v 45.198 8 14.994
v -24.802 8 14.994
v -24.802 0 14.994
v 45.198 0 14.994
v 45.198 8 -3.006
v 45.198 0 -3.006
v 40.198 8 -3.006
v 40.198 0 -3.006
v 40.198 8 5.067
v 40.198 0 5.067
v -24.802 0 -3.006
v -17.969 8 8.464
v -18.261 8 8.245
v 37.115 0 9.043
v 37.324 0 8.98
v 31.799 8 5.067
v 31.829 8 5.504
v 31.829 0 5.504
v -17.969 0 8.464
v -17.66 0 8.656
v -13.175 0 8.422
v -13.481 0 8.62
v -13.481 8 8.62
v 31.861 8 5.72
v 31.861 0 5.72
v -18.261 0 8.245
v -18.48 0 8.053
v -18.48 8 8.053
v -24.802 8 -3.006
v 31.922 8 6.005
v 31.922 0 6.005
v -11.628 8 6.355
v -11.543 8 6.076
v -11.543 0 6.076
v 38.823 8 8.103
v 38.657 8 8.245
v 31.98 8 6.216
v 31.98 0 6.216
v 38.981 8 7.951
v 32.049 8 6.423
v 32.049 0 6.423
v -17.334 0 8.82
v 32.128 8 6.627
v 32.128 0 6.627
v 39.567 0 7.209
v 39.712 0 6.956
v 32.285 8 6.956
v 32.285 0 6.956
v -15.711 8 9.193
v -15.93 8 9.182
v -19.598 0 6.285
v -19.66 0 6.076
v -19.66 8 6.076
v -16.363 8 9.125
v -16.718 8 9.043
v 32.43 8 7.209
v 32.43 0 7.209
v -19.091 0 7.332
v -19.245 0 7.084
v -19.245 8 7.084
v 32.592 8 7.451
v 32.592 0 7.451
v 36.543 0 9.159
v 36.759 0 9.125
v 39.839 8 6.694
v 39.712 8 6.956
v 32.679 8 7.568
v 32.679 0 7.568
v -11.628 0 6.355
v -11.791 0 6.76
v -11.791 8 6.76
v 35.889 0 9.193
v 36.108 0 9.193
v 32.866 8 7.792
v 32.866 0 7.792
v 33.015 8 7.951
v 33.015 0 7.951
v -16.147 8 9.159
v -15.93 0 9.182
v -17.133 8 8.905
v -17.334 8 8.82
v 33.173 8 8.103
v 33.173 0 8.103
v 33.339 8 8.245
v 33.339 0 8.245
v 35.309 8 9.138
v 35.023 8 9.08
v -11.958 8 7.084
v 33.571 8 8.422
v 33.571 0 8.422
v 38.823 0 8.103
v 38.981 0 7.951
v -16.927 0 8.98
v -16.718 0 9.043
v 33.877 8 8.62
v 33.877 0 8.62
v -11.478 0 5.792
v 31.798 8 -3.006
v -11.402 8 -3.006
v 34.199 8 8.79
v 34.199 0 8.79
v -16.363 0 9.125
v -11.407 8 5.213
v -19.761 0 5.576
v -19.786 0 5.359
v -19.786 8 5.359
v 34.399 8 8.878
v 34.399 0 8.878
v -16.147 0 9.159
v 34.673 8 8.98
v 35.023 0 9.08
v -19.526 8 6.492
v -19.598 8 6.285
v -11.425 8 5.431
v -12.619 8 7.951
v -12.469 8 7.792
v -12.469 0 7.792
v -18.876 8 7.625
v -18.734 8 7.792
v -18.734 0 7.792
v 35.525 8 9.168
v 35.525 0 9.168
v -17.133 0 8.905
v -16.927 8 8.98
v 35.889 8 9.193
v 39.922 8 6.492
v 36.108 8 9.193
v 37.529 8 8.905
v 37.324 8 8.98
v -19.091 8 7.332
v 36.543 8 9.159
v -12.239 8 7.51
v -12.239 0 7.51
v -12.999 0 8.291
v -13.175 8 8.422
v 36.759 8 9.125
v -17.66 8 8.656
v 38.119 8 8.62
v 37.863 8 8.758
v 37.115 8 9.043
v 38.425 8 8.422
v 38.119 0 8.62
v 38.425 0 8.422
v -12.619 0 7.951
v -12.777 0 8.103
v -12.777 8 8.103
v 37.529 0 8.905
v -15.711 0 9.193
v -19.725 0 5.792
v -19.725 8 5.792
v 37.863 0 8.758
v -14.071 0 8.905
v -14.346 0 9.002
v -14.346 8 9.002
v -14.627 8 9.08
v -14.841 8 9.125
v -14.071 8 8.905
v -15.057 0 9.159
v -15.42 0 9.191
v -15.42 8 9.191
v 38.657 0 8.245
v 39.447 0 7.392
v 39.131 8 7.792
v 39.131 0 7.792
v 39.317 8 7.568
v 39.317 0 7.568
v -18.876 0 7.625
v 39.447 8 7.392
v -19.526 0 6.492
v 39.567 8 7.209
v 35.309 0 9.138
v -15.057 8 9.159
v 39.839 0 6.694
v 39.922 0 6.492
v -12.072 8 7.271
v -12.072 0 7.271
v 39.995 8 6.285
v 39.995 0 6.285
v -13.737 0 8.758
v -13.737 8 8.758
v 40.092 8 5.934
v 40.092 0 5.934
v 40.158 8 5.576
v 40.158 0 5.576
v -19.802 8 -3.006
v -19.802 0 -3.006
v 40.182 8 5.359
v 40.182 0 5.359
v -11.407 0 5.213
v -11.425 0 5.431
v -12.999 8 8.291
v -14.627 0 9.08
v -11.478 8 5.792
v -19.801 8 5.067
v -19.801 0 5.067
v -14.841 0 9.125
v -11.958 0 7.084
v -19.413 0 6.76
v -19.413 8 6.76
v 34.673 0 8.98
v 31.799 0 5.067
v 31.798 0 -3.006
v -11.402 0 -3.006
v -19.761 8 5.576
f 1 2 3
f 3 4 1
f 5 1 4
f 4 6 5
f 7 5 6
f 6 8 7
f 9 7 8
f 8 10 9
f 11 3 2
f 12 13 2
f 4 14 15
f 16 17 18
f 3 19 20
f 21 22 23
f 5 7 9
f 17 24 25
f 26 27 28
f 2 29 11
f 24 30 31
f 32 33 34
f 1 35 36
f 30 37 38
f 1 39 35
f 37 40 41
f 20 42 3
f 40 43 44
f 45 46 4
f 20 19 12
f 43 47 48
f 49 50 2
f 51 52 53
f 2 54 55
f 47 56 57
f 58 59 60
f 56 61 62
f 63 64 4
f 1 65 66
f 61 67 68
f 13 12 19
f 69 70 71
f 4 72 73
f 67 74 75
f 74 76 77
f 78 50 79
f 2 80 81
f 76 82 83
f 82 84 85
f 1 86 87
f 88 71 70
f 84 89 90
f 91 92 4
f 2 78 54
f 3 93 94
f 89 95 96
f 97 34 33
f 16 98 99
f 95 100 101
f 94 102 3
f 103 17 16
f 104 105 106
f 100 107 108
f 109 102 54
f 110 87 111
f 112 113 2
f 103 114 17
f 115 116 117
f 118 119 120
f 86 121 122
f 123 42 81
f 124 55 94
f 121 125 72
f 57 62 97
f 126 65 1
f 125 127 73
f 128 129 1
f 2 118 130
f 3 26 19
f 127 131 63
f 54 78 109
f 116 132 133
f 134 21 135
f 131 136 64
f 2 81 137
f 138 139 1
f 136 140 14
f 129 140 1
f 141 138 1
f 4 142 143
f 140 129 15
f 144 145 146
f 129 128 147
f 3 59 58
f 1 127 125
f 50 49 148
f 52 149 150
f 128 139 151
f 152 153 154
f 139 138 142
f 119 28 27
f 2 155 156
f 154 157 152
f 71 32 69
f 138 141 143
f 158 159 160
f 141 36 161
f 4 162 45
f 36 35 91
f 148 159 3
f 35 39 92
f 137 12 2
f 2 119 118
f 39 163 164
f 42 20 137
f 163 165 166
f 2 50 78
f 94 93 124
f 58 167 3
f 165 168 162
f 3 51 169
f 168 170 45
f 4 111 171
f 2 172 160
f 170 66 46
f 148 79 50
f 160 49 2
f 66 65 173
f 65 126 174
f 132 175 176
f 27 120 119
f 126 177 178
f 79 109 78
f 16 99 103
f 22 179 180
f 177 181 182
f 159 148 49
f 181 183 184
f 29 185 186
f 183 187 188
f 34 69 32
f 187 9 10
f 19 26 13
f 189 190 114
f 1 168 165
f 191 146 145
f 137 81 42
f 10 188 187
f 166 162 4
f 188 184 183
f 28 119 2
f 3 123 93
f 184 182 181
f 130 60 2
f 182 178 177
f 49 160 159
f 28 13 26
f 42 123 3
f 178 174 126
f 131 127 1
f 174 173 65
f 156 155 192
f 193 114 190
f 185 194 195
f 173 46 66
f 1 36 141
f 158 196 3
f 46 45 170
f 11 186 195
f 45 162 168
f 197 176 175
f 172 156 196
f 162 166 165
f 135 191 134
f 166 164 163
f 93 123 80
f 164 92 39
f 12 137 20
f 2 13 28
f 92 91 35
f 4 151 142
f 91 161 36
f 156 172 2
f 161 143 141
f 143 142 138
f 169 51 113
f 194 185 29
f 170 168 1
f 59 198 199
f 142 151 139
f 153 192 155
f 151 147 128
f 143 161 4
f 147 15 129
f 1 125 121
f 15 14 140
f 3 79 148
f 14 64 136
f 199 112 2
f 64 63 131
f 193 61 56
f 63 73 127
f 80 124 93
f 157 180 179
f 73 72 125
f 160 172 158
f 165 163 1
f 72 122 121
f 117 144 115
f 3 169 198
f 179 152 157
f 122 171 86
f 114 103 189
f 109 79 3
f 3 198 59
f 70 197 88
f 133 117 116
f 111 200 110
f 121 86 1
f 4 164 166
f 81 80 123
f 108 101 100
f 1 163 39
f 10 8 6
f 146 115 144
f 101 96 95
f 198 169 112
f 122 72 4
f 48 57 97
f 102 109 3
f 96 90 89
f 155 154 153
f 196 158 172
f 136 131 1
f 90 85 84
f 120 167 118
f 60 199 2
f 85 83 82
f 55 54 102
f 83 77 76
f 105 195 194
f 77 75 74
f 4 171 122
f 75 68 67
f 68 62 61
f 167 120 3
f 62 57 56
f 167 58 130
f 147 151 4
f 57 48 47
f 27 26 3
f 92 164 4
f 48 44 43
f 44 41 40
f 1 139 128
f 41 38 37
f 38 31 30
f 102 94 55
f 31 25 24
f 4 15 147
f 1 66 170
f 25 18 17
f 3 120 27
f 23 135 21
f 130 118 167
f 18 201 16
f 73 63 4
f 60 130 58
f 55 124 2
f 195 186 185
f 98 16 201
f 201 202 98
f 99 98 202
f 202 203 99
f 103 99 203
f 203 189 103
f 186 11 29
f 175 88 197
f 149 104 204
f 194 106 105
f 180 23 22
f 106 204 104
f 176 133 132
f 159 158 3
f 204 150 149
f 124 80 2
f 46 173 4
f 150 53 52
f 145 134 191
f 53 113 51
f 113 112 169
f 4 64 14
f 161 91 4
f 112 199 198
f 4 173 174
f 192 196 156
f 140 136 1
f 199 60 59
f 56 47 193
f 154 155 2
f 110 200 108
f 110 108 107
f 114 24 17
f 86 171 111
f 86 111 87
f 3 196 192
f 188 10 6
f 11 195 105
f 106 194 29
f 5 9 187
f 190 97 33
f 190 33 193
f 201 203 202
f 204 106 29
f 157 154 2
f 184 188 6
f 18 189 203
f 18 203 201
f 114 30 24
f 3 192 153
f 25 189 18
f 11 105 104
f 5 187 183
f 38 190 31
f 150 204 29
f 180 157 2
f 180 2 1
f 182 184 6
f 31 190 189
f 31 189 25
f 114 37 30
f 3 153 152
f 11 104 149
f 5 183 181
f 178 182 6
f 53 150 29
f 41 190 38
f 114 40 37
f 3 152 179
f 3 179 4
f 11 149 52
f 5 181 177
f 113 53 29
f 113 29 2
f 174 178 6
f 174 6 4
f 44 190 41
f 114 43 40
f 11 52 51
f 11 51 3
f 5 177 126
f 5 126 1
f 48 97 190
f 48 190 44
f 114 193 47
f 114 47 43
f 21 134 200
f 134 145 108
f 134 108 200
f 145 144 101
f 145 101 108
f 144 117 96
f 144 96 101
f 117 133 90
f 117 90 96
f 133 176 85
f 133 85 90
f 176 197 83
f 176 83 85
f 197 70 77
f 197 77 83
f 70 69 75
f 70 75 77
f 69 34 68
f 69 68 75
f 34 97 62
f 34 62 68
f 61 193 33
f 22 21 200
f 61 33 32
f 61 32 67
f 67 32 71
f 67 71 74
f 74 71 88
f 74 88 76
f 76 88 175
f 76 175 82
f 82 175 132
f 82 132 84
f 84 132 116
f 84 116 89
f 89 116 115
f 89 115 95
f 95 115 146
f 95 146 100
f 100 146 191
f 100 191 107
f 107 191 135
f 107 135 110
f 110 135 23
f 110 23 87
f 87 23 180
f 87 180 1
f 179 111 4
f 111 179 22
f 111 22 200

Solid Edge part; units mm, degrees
sketch "Sketch1" plane through (0, 0, 0) normal (0, -1, 0) x (1, 0, 0)
  line L0 (45.1982, 14.9945) -> (45.1982, -3.0055)
  line L1 (45.1982, -3.0055) -> (40.1982, -3.0055)
  line L2 (40.1982, -3.0055) -> (40.1982, 4.9945)
  line L3 (31.7982, 4.9945) -> (31.7982, -3.0055)
  line L4 (31.7982, -3.0055) -> (-11.4018, -3.0055)
  line L5 (-11.4018, 4.9945) -> (-11.4018, -3.0055)
  line L6 (-19.8018, 4.9945) -> (-19.8018, -3.0055)
  line L7 (-19.8018, -3.0055) -> (-24.8018, -3.0055)
  line L8 (-24.8018, -3.0055) -> (-24.8018, 14.9945)
  line L9 (-24.8018, 14.9945) -> (45.1982, 14.9945)
  arc A0 (40.1982, 4.9945) -> (31.7982, 4.9945) centre (35.9982, 4.9945) ccw
  arc A1 (-11.4018, 4.9945) -> (-19.8018, 4.9945) centre (-15.6018, 4.9945) ccw
  dimension "D1" = 18
  dimension "D2" = 18
  dimension "D3" = 5
  dimension "D4" = 5
extrude "Protrusion1" add sketch "Sketch1" against normal blind 8
